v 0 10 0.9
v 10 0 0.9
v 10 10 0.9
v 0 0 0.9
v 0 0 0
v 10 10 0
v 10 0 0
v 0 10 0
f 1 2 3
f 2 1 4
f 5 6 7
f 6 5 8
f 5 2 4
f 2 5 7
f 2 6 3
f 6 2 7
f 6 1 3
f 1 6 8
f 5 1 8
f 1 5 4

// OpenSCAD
/* Warning, this is a very basic generator with a lot of approximation 
input data : [VQFN, ZUX, 10x10x0.9mm, 72, , A, C04-00528A]
generated by com.zoubworld.electronics.cad.model3d.Basic
Date : Sun Feb 15 10:50:48 CET 2026
*/

//body
color("black")
translate([0,0,0])
cube([10.0,10.0,0.9], center=false);
